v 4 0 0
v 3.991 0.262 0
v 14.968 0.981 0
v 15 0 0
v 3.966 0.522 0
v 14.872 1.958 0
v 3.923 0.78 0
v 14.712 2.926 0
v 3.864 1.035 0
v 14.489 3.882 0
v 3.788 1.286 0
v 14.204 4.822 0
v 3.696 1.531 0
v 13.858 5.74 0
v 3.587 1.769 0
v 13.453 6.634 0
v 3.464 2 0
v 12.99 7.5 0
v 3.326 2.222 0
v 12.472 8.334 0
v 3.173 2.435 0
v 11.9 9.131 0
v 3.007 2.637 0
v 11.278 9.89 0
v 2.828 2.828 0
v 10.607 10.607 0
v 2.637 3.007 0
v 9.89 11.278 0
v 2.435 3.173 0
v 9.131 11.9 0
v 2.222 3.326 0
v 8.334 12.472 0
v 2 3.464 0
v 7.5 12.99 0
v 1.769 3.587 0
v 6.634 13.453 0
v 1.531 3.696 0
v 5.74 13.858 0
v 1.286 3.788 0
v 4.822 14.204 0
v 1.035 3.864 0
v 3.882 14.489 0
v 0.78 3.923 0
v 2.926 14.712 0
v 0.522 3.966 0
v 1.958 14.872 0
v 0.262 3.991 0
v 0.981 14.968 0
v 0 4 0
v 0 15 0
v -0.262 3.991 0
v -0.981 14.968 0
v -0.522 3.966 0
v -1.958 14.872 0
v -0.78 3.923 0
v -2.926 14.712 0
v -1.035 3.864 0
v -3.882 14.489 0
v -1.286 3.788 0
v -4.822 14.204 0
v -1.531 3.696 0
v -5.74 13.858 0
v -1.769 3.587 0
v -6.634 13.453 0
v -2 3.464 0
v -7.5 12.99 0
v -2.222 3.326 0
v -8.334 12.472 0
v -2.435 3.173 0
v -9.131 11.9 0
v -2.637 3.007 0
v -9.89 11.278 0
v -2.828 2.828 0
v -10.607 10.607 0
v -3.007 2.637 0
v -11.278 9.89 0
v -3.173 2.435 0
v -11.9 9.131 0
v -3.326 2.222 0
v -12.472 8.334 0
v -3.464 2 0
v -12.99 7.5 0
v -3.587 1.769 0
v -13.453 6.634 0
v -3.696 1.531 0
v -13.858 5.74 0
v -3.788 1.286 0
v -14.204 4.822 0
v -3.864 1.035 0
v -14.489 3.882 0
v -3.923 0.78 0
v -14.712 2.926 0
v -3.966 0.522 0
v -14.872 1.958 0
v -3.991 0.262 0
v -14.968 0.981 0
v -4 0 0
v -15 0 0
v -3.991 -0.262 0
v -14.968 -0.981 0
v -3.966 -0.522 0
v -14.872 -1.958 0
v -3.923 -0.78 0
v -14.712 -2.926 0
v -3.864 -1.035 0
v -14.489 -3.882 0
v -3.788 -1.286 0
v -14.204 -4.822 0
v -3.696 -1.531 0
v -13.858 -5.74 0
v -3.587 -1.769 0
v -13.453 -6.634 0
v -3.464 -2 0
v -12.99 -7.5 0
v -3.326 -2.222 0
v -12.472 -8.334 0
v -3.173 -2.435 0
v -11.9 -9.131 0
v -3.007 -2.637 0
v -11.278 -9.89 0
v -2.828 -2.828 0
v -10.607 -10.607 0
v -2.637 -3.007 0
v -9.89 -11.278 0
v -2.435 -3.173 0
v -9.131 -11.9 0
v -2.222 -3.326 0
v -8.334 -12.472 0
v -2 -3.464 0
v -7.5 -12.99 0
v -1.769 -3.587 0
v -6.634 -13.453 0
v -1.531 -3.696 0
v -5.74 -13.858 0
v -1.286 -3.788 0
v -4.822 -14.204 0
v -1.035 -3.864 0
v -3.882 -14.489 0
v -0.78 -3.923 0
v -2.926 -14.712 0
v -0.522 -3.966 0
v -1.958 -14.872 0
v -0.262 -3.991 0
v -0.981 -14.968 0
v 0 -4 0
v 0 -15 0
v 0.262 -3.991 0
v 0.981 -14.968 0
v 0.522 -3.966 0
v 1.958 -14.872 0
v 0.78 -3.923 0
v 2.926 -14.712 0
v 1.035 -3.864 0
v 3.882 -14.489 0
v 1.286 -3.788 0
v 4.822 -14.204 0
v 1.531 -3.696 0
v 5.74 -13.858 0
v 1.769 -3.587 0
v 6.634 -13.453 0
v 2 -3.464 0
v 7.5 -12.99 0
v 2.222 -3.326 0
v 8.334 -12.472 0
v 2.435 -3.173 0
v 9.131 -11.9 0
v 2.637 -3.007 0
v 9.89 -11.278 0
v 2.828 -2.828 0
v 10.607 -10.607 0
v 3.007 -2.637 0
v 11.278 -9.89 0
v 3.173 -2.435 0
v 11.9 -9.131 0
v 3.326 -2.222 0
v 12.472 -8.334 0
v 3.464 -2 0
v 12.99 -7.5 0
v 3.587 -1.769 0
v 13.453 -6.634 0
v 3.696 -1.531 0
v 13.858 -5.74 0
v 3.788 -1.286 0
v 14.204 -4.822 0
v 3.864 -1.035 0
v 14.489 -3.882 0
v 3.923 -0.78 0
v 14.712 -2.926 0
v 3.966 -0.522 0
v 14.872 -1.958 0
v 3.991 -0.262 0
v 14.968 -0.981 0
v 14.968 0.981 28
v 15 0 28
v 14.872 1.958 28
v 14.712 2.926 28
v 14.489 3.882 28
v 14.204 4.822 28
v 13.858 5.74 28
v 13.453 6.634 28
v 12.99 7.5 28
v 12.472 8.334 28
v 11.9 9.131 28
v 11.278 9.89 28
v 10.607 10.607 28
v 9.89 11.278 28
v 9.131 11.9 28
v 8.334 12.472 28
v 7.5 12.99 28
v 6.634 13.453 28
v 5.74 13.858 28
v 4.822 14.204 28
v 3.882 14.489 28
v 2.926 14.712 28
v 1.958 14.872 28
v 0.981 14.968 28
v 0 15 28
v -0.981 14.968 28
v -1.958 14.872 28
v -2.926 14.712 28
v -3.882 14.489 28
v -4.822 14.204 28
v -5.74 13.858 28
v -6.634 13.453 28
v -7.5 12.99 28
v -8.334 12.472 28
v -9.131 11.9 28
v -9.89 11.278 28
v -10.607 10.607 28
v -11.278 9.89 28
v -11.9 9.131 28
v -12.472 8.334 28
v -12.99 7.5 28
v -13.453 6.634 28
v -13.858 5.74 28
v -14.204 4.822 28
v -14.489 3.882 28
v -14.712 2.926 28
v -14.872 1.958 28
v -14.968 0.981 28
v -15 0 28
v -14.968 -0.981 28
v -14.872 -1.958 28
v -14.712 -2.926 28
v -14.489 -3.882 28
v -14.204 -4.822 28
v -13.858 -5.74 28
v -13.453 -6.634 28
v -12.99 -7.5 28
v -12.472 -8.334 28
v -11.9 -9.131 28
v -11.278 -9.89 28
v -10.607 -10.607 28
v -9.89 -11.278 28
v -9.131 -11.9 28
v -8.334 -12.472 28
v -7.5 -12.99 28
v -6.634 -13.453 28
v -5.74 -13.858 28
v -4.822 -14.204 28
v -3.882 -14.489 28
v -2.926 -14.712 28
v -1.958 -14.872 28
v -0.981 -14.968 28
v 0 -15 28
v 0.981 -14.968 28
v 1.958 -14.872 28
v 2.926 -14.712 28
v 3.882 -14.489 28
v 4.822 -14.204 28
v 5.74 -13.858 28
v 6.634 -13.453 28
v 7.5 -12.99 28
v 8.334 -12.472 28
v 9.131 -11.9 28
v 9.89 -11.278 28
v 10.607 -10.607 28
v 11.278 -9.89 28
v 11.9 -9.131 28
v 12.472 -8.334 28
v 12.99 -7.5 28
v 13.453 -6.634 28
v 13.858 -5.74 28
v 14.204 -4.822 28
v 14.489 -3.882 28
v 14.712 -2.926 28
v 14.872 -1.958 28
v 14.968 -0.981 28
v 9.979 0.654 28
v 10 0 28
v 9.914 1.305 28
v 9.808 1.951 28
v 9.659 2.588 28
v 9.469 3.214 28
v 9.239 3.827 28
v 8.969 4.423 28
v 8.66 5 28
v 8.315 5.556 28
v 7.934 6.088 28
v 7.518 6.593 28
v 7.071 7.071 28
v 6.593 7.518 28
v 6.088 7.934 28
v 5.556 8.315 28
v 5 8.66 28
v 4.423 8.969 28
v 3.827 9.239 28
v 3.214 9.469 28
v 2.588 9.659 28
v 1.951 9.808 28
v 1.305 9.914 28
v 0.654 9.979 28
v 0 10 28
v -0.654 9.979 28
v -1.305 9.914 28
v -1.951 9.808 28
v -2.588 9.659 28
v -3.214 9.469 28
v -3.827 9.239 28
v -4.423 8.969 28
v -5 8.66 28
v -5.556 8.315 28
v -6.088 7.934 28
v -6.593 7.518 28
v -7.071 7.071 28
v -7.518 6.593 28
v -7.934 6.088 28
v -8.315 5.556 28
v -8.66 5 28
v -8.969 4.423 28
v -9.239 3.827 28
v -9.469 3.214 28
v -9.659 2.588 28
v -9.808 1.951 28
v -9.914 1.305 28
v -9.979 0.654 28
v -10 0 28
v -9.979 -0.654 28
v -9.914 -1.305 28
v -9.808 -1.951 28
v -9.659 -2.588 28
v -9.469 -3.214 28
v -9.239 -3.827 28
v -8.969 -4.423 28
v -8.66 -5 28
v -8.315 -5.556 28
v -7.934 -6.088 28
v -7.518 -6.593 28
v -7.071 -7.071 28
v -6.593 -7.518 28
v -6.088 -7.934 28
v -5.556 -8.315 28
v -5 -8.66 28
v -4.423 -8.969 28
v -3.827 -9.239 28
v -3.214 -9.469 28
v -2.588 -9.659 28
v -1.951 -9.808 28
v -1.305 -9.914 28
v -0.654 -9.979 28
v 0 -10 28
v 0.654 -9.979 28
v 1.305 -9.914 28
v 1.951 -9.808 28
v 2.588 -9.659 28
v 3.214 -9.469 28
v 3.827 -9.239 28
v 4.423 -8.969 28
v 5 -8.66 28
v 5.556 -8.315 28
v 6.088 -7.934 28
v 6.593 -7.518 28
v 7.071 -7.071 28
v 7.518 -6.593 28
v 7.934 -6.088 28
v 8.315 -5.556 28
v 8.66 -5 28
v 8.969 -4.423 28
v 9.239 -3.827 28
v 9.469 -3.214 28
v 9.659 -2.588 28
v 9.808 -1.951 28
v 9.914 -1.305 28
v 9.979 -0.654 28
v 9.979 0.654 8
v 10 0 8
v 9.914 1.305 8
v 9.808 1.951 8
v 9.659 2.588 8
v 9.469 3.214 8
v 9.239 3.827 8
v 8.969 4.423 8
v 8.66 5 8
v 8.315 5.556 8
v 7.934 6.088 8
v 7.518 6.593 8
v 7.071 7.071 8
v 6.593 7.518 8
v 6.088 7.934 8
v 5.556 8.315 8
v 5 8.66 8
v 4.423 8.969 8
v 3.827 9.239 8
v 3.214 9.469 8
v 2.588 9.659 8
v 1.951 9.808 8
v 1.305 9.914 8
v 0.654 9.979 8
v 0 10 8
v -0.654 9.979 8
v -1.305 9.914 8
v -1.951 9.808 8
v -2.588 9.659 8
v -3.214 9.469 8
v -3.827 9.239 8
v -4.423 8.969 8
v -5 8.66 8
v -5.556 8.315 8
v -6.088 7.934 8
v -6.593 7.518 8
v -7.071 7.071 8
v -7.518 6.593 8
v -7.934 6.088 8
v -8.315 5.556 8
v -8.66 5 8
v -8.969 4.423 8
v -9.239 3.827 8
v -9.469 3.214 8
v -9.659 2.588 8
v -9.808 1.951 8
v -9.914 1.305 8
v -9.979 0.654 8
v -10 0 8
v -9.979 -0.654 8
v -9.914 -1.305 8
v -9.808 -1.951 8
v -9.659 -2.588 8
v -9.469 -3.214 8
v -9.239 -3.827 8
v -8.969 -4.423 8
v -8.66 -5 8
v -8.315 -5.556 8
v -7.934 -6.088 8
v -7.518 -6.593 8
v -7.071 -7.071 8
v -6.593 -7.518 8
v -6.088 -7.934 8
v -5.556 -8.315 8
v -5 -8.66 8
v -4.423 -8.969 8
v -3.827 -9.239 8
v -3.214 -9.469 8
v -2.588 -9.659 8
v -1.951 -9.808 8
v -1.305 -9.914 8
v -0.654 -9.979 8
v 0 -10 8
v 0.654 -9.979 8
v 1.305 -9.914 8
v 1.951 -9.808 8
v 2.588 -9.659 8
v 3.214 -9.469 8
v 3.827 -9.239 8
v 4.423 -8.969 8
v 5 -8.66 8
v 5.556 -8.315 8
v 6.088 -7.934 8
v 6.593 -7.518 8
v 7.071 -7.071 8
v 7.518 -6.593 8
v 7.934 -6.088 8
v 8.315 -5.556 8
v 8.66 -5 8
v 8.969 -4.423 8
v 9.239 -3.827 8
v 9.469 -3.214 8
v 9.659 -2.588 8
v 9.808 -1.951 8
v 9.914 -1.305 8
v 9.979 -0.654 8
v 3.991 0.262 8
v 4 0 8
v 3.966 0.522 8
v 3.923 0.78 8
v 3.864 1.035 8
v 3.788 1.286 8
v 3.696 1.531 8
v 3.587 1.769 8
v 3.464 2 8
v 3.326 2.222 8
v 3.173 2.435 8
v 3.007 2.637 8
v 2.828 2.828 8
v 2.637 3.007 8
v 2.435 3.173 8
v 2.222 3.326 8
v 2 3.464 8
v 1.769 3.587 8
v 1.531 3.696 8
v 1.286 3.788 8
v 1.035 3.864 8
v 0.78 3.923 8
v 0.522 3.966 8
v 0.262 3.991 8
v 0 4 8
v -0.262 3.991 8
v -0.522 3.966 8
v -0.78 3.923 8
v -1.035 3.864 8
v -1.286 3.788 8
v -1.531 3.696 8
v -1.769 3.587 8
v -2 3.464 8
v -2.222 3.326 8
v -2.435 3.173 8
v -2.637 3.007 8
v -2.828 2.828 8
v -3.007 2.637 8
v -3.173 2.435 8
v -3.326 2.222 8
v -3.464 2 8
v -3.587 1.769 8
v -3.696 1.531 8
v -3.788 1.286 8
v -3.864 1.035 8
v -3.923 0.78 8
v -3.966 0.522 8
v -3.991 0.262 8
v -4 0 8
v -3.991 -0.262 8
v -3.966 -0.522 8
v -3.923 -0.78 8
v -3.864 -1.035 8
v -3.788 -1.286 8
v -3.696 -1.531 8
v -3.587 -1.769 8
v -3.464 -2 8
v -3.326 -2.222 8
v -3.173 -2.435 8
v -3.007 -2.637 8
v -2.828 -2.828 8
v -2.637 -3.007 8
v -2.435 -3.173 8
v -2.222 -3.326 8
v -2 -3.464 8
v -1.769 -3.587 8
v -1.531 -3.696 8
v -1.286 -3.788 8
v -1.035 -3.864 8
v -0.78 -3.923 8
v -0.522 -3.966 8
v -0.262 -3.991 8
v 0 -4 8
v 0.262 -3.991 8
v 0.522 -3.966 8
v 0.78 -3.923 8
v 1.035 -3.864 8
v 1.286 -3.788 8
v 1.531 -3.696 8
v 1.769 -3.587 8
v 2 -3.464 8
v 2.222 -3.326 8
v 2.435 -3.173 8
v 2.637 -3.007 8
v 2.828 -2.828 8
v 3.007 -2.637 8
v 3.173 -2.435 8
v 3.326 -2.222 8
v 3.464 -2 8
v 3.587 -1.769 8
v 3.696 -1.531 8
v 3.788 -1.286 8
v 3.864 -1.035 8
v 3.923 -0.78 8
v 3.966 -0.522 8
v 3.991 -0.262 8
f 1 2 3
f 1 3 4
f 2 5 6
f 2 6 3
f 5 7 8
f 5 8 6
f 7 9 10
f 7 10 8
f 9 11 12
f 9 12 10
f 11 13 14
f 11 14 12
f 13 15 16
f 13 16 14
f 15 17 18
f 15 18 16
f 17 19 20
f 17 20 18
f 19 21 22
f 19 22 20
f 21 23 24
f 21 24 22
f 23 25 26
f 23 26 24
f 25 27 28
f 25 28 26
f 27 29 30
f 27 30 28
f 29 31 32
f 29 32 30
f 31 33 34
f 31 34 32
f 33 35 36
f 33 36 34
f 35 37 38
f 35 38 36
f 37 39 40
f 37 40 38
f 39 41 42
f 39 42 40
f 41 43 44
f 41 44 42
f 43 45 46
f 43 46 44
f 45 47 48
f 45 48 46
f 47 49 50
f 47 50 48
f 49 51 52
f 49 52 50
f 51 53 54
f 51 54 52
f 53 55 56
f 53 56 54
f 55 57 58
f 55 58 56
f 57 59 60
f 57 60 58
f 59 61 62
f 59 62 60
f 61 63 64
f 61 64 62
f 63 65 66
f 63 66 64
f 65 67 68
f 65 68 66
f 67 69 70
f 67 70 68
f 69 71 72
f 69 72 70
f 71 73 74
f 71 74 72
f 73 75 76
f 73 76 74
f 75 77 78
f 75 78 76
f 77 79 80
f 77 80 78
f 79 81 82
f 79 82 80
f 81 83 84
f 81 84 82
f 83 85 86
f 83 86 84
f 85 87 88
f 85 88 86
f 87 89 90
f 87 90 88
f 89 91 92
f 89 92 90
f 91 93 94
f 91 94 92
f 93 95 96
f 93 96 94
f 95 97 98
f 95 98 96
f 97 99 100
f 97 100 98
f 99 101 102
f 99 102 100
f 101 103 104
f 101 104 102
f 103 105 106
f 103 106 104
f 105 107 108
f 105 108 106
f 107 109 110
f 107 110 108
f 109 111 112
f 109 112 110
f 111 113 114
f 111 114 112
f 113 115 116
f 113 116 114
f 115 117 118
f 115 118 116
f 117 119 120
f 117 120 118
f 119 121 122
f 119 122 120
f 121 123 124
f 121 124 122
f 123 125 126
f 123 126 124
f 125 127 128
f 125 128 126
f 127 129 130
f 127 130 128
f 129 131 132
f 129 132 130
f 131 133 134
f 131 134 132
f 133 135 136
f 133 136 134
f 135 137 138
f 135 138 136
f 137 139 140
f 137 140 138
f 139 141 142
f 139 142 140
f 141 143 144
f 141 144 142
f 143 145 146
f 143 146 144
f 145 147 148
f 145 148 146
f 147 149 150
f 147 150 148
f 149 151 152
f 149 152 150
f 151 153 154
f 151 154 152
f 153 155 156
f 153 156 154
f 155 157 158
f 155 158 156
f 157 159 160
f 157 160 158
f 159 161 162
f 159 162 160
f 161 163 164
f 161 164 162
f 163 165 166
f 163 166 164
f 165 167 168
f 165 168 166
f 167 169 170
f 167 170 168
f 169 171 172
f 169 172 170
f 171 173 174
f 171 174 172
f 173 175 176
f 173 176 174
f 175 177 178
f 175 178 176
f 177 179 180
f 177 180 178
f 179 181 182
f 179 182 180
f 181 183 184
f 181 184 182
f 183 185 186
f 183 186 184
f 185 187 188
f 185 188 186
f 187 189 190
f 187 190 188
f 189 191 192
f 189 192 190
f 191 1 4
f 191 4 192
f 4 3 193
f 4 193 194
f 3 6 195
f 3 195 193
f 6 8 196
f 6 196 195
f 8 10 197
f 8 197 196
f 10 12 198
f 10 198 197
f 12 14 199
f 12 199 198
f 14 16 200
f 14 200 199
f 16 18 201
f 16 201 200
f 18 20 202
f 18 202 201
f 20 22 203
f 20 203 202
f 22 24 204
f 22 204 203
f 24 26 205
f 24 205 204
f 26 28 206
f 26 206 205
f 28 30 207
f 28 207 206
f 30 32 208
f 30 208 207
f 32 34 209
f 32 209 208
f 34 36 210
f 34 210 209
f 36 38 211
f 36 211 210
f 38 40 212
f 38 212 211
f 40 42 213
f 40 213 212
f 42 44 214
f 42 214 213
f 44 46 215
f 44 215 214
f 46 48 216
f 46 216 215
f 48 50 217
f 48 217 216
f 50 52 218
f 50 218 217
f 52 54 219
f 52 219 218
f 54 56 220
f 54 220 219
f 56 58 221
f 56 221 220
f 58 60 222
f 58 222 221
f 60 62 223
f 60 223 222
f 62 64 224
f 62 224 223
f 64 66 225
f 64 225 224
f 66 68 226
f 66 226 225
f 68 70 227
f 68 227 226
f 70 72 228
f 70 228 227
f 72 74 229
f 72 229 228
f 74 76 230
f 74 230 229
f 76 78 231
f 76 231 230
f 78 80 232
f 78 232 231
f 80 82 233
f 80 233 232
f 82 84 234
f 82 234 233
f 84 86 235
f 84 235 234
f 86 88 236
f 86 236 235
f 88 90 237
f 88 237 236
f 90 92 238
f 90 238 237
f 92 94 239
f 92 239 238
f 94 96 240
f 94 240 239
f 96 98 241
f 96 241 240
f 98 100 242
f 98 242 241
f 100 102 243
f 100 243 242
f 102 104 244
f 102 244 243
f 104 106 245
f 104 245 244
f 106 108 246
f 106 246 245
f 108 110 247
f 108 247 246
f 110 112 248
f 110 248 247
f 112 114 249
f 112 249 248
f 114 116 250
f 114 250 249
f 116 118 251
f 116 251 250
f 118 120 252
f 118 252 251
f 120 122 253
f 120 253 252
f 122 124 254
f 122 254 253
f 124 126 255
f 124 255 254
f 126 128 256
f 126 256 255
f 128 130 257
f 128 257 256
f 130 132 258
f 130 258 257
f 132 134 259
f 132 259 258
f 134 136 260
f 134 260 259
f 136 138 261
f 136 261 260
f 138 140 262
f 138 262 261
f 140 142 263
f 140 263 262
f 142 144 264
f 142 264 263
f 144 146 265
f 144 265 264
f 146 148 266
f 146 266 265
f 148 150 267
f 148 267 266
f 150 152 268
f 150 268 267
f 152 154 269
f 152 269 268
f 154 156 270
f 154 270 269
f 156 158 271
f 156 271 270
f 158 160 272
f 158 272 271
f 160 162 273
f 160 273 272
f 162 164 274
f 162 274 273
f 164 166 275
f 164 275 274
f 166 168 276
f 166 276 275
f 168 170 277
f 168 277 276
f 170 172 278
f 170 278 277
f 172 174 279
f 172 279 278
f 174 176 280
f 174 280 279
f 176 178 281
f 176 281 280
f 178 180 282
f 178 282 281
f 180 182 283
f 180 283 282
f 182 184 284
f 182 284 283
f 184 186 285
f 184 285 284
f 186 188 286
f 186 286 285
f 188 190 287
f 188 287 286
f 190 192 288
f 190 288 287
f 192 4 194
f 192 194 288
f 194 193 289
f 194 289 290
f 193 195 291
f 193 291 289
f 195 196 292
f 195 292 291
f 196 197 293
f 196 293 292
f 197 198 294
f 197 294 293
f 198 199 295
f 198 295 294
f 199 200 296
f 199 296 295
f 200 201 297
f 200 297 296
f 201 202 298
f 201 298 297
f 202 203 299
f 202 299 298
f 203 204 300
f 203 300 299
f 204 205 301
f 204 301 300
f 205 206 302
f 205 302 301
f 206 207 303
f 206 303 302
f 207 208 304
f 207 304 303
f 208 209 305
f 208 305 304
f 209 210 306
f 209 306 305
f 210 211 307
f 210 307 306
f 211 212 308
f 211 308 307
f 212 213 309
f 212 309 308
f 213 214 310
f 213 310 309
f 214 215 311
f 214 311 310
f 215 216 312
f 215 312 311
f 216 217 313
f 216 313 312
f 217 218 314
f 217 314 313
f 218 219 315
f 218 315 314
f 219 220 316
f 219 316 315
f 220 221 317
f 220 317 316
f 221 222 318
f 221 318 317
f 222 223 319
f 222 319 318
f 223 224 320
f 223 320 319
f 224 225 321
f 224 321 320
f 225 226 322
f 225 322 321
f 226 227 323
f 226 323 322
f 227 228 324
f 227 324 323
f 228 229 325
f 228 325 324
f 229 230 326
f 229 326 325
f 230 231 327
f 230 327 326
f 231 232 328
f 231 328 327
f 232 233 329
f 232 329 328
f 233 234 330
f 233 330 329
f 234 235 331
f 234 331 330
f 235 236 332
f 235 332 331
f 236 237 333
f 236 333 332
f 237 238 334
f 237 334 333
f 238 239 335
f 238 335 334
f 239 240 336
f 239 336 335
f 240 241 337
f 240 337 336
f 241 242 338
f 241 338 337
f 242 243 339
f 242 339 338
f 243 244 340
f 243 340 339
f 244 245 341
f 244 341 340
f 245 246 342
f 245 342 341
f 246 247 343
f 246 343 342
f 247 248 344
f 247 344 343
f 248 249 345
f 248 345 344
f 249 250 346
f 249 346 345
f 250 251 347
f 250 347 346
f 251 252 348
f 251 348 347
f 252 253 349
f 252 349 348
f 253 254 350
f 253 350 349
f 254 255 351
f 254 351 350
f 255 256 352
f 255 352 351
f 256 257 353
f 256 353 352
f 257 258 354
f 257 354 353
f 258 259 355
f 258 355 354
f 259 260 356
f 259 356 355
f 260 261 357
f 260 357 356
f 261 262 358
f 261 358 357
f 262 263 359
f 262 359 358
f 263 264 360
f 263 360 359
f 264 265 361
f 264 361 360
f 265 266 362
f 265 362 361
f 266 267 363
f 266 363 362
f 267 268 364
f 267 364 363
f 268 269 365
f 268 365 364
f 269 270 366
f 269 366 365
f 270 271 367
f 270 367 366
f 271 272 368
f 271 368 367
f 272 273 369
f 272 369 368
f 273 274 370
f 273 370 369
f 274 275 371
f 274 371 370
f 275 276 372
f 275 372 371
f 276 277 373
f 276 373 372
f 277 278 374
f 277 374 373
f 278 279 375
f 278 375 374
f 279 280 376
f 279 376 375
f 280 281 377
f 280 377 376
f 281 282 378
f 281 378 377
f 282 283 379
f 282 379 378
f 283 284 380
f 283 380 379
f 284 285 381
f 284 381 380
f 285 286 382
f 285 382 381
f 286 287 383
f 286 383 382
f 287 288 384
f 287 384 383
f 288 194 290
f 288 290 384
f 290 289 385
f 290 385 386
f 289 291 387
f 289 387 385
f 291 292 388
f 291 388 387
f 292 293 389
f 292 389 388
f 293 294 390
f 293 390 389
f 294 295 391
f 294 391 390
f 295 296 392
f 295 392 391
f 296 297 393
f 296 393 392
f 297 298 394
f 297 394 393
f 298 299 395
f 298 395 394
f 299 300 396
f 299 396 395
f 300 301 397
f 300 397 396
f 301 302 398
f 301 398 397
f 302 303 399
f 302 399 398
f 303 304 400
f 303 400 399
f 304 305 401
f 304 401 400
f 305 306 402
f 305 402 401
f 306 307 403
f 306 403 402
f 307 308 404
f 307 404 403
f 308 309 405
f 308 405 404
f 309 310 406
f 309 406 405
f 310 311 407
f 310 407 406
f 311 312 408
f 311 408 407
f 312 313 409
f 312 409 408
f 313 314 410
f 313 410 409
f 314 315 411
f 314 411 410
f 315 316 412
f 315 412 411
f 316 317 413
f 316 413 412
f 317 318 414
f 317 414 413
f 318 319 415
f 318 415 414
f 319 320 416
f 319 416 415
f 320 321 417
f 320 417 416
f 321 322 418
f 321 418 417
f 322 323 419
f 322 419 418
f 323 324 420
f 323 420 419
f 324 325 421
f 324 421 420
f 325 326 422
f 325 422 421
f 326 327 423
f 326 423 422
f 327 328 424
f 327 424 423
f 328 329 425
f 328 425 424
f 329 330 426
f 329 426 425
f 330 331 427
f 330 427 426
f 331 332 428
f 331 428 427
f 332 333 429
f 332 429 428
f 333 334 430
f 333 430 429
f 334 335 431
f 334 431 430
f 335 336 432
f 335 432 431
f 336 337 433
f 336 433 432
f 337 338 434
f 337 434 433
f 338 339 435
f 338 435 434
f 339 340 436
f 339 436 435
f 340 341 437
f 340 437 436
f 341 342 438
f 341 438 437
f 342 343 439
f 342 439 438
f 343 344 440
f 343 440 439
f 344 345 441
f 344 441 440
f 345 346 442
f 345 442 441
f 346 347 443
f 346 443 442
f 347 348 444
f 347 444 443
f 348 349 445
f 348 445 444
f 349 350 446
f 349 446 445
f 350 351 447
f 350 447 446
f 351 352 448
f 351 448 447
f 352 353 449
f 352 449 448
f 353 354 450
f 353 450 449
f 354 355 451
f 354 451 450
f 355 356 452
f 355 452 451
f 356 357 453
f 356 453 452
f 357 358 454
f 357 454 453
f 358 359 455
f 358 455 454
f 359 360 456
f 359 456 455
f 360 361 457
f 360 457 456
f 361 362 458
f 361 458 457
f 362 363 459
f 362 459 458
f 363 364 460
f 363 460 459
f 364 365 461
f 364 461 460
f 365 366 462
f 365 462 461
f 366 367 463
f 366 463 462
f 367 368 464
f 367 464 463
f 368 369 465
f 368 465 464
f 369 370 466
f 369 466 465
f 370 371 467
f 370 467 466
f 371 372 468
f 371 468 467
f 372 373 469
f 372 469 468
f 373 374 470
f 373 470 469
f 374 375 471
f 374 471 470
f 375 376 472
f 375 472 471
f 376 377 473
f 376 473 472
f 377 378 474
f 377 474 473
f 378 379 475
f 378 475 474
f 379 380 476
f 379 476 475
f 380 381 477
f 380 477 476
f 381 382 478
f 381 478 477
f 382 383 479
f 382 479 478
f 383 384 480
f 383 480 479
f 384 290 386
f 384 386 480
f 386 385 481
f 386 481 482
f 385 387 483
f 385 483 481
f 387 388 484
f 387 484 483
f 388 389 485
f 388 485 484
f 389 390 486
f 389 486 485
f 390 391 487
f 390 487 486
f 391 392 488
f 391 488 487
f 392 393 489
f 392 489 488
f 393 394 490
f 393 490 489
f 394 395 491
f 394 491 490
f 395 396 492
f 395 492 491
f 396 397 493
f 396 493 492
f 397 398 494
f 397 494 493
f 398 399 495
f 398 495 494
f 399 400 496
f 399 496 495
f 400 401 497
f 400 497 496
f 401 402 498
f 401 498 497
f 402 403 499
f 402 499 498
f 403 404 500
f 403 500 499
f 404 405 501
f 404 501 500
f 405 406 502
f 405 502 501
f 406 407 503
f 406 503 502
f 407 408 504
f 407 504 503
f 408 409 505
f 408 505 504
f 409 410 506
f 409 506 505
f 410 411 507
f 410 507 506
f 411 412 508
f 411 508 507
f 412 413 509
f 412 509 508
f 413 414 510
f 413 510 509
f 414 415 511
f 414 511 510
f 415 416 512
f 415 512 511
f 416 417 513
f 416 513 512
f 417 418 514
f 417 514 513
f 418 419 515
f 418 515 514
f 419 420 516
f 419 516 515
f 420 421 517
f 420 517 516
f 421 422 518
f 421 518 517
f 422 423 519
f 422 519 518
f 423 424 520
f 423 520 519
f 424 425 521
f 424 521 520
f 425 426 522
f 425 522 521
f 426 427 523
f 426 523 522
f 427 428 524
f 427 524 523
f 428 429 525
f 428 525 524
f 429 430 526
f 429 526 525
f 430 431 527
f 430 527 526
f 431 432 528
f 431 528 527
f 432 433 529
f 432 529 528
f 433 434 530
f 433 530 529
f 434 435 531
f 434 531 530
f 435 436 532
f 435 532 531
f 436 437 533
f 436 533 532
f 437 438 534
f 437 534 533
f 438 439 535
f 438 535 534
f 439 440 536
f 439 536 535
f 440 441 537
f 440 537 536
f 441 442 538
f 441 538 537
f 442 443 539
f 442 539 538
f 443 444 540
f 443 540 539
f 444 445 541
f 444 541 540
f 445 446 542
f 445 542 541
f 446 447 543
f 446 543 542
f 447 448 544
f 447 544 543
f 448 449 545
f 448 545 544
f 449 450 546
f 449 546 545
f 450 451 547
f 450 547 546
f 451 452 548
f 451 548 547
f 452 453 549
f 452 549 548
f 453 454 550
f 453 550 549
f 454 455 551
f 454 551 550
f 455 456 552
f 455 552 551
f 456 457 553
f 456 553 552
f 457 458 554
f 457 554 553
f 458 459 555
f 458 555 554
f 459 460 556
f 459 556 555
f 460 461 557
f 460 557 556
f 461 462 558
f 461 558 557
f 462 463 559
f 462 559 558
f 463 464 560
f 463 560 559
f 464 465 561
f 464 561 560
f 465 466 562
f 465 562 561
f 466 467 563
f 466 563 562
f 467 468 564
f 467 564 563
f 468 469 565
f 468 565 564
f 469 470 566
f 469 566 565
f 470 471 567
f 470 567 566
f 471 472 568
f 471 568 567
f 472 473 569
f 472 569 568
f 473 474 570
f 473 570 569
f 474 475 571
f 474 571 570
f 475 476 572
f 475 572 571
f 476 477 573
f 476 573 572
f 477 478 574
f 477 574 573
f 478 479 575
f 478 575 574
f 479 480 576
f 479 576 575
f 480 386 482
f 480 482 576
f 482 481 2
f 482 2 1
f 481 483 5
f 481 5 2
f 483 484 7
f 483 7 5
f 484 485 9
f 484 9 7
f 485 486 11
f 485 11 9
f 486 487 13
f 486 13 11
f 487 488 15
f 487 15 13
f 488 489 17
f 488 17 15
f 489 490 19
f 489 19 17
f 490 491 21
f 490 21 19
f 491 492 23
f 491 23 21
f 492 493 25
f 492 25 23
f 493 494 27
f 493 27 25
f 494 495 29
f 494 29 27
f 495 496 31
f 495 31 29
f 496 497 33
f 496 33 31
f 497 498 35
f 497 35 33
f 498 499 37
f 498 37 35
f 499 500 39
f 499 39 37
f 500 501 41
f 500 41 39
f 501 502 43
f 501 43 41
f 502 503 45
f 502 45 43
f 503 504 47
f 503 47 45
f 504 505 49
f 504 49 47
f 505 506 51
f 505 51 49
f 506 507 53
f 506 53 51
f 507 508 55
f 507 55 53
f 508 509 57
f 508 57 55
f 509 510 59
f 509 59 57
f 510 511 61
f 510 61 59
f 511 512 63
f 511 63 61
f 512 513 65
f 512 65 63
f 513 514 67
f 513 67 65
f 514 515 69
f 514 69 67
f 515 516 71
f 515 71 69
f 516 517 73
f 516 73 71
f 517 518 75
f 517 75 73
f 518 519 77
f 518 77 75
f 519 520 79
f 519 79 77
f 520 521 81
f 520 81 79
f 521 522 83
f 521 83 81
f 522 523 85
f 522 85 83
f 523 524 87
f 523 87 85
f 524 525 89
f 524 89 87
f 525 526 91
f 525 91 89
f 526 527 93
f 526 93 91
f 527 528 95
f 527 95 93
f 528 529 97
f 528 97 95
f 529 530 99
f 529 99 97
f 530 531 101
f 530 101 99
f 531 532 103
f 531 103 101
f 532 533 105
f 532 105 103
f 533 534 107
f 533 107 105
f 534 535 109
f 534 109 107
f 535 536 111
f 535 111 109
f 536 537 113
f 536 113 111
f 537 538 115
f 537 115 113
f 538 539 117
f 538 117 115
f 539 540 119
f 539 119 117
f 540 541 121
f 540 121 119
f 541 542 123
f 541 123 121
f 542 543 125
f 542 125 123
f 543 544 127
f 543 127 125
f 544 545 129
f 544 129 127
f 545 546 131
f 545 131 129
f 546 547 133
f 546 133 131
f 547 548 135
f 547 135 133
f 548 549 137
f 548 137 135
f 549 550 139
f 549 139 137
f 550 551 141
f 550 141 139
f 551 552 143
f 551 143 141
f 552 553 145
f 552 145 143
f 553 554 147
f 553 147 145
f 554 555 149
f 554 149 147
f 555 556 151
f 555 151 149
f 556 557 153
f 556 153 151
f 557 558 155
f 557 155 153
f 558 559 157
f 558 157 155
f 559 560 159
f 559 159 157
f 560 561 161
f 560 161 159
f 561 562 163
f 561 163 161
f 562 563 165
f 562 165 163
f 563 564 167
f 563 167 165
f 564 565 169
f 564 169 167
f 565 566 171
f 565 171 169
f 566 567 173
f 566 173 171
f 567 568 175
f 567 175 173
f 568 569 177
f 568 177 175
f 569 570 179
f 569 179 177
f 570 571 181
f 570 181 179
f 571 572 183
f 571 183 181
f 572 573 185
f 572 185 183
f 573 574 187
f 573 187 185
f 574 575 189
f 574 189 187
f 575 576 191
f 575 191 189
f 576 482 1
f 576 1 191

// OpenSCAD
// Original MechIntel educational model. CC0-1.0. Units: mm.
// Not a standardized or load-rated component.
$fn=96;
// Section points: [radius, height], mm. Edit to change the profile.
section=[[4, 0], [15, 0], [15, 28], [10, 28], [10, 8], [4, 8]];
rotate_extrude($fn=96) polygon(points=section);
